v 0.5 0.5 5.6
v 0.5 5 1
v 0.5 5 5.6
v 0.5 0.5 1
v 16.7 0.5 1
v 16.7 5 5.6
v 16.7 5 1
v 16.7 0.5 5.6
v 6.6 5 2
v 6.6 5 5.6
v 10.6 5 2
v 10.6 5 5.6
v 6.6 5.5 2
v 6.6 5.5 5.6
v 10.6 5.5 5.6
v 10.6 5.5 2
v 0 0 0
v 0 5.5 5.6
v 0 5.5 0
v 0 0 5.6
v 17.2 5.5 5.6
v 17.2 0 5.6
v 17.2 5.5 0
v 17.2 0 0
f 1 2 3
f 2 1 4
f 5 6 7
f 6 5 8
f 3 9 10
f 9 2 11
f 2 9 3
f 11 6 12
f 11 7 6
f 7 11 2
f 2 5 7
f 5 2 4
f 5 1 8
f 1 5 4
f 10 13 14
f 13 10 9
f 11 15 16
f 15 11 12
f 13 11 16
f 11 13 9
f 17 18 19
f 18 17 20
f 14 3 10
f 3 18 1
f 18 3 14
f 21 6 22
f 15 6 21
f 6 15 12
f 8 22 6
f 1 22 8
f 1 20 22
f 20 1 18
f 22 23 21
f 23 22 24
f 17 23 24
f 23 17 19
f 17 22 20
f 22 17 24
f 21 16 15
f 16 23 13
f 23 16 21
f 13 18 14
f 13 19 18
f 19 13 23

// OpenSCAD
n = 10;
x = (n/2-1)*2+9.2;
difference()
{
    cube([x,5.5,5.6]);
    union()
    {
        translate([0.5,0.5,1])
        {
            cube([x-1,5.5-1,5.6]);
        }
        translate([x/2-2,2,2])
        {
            cube([4,4,5]);
        }
    }
}
